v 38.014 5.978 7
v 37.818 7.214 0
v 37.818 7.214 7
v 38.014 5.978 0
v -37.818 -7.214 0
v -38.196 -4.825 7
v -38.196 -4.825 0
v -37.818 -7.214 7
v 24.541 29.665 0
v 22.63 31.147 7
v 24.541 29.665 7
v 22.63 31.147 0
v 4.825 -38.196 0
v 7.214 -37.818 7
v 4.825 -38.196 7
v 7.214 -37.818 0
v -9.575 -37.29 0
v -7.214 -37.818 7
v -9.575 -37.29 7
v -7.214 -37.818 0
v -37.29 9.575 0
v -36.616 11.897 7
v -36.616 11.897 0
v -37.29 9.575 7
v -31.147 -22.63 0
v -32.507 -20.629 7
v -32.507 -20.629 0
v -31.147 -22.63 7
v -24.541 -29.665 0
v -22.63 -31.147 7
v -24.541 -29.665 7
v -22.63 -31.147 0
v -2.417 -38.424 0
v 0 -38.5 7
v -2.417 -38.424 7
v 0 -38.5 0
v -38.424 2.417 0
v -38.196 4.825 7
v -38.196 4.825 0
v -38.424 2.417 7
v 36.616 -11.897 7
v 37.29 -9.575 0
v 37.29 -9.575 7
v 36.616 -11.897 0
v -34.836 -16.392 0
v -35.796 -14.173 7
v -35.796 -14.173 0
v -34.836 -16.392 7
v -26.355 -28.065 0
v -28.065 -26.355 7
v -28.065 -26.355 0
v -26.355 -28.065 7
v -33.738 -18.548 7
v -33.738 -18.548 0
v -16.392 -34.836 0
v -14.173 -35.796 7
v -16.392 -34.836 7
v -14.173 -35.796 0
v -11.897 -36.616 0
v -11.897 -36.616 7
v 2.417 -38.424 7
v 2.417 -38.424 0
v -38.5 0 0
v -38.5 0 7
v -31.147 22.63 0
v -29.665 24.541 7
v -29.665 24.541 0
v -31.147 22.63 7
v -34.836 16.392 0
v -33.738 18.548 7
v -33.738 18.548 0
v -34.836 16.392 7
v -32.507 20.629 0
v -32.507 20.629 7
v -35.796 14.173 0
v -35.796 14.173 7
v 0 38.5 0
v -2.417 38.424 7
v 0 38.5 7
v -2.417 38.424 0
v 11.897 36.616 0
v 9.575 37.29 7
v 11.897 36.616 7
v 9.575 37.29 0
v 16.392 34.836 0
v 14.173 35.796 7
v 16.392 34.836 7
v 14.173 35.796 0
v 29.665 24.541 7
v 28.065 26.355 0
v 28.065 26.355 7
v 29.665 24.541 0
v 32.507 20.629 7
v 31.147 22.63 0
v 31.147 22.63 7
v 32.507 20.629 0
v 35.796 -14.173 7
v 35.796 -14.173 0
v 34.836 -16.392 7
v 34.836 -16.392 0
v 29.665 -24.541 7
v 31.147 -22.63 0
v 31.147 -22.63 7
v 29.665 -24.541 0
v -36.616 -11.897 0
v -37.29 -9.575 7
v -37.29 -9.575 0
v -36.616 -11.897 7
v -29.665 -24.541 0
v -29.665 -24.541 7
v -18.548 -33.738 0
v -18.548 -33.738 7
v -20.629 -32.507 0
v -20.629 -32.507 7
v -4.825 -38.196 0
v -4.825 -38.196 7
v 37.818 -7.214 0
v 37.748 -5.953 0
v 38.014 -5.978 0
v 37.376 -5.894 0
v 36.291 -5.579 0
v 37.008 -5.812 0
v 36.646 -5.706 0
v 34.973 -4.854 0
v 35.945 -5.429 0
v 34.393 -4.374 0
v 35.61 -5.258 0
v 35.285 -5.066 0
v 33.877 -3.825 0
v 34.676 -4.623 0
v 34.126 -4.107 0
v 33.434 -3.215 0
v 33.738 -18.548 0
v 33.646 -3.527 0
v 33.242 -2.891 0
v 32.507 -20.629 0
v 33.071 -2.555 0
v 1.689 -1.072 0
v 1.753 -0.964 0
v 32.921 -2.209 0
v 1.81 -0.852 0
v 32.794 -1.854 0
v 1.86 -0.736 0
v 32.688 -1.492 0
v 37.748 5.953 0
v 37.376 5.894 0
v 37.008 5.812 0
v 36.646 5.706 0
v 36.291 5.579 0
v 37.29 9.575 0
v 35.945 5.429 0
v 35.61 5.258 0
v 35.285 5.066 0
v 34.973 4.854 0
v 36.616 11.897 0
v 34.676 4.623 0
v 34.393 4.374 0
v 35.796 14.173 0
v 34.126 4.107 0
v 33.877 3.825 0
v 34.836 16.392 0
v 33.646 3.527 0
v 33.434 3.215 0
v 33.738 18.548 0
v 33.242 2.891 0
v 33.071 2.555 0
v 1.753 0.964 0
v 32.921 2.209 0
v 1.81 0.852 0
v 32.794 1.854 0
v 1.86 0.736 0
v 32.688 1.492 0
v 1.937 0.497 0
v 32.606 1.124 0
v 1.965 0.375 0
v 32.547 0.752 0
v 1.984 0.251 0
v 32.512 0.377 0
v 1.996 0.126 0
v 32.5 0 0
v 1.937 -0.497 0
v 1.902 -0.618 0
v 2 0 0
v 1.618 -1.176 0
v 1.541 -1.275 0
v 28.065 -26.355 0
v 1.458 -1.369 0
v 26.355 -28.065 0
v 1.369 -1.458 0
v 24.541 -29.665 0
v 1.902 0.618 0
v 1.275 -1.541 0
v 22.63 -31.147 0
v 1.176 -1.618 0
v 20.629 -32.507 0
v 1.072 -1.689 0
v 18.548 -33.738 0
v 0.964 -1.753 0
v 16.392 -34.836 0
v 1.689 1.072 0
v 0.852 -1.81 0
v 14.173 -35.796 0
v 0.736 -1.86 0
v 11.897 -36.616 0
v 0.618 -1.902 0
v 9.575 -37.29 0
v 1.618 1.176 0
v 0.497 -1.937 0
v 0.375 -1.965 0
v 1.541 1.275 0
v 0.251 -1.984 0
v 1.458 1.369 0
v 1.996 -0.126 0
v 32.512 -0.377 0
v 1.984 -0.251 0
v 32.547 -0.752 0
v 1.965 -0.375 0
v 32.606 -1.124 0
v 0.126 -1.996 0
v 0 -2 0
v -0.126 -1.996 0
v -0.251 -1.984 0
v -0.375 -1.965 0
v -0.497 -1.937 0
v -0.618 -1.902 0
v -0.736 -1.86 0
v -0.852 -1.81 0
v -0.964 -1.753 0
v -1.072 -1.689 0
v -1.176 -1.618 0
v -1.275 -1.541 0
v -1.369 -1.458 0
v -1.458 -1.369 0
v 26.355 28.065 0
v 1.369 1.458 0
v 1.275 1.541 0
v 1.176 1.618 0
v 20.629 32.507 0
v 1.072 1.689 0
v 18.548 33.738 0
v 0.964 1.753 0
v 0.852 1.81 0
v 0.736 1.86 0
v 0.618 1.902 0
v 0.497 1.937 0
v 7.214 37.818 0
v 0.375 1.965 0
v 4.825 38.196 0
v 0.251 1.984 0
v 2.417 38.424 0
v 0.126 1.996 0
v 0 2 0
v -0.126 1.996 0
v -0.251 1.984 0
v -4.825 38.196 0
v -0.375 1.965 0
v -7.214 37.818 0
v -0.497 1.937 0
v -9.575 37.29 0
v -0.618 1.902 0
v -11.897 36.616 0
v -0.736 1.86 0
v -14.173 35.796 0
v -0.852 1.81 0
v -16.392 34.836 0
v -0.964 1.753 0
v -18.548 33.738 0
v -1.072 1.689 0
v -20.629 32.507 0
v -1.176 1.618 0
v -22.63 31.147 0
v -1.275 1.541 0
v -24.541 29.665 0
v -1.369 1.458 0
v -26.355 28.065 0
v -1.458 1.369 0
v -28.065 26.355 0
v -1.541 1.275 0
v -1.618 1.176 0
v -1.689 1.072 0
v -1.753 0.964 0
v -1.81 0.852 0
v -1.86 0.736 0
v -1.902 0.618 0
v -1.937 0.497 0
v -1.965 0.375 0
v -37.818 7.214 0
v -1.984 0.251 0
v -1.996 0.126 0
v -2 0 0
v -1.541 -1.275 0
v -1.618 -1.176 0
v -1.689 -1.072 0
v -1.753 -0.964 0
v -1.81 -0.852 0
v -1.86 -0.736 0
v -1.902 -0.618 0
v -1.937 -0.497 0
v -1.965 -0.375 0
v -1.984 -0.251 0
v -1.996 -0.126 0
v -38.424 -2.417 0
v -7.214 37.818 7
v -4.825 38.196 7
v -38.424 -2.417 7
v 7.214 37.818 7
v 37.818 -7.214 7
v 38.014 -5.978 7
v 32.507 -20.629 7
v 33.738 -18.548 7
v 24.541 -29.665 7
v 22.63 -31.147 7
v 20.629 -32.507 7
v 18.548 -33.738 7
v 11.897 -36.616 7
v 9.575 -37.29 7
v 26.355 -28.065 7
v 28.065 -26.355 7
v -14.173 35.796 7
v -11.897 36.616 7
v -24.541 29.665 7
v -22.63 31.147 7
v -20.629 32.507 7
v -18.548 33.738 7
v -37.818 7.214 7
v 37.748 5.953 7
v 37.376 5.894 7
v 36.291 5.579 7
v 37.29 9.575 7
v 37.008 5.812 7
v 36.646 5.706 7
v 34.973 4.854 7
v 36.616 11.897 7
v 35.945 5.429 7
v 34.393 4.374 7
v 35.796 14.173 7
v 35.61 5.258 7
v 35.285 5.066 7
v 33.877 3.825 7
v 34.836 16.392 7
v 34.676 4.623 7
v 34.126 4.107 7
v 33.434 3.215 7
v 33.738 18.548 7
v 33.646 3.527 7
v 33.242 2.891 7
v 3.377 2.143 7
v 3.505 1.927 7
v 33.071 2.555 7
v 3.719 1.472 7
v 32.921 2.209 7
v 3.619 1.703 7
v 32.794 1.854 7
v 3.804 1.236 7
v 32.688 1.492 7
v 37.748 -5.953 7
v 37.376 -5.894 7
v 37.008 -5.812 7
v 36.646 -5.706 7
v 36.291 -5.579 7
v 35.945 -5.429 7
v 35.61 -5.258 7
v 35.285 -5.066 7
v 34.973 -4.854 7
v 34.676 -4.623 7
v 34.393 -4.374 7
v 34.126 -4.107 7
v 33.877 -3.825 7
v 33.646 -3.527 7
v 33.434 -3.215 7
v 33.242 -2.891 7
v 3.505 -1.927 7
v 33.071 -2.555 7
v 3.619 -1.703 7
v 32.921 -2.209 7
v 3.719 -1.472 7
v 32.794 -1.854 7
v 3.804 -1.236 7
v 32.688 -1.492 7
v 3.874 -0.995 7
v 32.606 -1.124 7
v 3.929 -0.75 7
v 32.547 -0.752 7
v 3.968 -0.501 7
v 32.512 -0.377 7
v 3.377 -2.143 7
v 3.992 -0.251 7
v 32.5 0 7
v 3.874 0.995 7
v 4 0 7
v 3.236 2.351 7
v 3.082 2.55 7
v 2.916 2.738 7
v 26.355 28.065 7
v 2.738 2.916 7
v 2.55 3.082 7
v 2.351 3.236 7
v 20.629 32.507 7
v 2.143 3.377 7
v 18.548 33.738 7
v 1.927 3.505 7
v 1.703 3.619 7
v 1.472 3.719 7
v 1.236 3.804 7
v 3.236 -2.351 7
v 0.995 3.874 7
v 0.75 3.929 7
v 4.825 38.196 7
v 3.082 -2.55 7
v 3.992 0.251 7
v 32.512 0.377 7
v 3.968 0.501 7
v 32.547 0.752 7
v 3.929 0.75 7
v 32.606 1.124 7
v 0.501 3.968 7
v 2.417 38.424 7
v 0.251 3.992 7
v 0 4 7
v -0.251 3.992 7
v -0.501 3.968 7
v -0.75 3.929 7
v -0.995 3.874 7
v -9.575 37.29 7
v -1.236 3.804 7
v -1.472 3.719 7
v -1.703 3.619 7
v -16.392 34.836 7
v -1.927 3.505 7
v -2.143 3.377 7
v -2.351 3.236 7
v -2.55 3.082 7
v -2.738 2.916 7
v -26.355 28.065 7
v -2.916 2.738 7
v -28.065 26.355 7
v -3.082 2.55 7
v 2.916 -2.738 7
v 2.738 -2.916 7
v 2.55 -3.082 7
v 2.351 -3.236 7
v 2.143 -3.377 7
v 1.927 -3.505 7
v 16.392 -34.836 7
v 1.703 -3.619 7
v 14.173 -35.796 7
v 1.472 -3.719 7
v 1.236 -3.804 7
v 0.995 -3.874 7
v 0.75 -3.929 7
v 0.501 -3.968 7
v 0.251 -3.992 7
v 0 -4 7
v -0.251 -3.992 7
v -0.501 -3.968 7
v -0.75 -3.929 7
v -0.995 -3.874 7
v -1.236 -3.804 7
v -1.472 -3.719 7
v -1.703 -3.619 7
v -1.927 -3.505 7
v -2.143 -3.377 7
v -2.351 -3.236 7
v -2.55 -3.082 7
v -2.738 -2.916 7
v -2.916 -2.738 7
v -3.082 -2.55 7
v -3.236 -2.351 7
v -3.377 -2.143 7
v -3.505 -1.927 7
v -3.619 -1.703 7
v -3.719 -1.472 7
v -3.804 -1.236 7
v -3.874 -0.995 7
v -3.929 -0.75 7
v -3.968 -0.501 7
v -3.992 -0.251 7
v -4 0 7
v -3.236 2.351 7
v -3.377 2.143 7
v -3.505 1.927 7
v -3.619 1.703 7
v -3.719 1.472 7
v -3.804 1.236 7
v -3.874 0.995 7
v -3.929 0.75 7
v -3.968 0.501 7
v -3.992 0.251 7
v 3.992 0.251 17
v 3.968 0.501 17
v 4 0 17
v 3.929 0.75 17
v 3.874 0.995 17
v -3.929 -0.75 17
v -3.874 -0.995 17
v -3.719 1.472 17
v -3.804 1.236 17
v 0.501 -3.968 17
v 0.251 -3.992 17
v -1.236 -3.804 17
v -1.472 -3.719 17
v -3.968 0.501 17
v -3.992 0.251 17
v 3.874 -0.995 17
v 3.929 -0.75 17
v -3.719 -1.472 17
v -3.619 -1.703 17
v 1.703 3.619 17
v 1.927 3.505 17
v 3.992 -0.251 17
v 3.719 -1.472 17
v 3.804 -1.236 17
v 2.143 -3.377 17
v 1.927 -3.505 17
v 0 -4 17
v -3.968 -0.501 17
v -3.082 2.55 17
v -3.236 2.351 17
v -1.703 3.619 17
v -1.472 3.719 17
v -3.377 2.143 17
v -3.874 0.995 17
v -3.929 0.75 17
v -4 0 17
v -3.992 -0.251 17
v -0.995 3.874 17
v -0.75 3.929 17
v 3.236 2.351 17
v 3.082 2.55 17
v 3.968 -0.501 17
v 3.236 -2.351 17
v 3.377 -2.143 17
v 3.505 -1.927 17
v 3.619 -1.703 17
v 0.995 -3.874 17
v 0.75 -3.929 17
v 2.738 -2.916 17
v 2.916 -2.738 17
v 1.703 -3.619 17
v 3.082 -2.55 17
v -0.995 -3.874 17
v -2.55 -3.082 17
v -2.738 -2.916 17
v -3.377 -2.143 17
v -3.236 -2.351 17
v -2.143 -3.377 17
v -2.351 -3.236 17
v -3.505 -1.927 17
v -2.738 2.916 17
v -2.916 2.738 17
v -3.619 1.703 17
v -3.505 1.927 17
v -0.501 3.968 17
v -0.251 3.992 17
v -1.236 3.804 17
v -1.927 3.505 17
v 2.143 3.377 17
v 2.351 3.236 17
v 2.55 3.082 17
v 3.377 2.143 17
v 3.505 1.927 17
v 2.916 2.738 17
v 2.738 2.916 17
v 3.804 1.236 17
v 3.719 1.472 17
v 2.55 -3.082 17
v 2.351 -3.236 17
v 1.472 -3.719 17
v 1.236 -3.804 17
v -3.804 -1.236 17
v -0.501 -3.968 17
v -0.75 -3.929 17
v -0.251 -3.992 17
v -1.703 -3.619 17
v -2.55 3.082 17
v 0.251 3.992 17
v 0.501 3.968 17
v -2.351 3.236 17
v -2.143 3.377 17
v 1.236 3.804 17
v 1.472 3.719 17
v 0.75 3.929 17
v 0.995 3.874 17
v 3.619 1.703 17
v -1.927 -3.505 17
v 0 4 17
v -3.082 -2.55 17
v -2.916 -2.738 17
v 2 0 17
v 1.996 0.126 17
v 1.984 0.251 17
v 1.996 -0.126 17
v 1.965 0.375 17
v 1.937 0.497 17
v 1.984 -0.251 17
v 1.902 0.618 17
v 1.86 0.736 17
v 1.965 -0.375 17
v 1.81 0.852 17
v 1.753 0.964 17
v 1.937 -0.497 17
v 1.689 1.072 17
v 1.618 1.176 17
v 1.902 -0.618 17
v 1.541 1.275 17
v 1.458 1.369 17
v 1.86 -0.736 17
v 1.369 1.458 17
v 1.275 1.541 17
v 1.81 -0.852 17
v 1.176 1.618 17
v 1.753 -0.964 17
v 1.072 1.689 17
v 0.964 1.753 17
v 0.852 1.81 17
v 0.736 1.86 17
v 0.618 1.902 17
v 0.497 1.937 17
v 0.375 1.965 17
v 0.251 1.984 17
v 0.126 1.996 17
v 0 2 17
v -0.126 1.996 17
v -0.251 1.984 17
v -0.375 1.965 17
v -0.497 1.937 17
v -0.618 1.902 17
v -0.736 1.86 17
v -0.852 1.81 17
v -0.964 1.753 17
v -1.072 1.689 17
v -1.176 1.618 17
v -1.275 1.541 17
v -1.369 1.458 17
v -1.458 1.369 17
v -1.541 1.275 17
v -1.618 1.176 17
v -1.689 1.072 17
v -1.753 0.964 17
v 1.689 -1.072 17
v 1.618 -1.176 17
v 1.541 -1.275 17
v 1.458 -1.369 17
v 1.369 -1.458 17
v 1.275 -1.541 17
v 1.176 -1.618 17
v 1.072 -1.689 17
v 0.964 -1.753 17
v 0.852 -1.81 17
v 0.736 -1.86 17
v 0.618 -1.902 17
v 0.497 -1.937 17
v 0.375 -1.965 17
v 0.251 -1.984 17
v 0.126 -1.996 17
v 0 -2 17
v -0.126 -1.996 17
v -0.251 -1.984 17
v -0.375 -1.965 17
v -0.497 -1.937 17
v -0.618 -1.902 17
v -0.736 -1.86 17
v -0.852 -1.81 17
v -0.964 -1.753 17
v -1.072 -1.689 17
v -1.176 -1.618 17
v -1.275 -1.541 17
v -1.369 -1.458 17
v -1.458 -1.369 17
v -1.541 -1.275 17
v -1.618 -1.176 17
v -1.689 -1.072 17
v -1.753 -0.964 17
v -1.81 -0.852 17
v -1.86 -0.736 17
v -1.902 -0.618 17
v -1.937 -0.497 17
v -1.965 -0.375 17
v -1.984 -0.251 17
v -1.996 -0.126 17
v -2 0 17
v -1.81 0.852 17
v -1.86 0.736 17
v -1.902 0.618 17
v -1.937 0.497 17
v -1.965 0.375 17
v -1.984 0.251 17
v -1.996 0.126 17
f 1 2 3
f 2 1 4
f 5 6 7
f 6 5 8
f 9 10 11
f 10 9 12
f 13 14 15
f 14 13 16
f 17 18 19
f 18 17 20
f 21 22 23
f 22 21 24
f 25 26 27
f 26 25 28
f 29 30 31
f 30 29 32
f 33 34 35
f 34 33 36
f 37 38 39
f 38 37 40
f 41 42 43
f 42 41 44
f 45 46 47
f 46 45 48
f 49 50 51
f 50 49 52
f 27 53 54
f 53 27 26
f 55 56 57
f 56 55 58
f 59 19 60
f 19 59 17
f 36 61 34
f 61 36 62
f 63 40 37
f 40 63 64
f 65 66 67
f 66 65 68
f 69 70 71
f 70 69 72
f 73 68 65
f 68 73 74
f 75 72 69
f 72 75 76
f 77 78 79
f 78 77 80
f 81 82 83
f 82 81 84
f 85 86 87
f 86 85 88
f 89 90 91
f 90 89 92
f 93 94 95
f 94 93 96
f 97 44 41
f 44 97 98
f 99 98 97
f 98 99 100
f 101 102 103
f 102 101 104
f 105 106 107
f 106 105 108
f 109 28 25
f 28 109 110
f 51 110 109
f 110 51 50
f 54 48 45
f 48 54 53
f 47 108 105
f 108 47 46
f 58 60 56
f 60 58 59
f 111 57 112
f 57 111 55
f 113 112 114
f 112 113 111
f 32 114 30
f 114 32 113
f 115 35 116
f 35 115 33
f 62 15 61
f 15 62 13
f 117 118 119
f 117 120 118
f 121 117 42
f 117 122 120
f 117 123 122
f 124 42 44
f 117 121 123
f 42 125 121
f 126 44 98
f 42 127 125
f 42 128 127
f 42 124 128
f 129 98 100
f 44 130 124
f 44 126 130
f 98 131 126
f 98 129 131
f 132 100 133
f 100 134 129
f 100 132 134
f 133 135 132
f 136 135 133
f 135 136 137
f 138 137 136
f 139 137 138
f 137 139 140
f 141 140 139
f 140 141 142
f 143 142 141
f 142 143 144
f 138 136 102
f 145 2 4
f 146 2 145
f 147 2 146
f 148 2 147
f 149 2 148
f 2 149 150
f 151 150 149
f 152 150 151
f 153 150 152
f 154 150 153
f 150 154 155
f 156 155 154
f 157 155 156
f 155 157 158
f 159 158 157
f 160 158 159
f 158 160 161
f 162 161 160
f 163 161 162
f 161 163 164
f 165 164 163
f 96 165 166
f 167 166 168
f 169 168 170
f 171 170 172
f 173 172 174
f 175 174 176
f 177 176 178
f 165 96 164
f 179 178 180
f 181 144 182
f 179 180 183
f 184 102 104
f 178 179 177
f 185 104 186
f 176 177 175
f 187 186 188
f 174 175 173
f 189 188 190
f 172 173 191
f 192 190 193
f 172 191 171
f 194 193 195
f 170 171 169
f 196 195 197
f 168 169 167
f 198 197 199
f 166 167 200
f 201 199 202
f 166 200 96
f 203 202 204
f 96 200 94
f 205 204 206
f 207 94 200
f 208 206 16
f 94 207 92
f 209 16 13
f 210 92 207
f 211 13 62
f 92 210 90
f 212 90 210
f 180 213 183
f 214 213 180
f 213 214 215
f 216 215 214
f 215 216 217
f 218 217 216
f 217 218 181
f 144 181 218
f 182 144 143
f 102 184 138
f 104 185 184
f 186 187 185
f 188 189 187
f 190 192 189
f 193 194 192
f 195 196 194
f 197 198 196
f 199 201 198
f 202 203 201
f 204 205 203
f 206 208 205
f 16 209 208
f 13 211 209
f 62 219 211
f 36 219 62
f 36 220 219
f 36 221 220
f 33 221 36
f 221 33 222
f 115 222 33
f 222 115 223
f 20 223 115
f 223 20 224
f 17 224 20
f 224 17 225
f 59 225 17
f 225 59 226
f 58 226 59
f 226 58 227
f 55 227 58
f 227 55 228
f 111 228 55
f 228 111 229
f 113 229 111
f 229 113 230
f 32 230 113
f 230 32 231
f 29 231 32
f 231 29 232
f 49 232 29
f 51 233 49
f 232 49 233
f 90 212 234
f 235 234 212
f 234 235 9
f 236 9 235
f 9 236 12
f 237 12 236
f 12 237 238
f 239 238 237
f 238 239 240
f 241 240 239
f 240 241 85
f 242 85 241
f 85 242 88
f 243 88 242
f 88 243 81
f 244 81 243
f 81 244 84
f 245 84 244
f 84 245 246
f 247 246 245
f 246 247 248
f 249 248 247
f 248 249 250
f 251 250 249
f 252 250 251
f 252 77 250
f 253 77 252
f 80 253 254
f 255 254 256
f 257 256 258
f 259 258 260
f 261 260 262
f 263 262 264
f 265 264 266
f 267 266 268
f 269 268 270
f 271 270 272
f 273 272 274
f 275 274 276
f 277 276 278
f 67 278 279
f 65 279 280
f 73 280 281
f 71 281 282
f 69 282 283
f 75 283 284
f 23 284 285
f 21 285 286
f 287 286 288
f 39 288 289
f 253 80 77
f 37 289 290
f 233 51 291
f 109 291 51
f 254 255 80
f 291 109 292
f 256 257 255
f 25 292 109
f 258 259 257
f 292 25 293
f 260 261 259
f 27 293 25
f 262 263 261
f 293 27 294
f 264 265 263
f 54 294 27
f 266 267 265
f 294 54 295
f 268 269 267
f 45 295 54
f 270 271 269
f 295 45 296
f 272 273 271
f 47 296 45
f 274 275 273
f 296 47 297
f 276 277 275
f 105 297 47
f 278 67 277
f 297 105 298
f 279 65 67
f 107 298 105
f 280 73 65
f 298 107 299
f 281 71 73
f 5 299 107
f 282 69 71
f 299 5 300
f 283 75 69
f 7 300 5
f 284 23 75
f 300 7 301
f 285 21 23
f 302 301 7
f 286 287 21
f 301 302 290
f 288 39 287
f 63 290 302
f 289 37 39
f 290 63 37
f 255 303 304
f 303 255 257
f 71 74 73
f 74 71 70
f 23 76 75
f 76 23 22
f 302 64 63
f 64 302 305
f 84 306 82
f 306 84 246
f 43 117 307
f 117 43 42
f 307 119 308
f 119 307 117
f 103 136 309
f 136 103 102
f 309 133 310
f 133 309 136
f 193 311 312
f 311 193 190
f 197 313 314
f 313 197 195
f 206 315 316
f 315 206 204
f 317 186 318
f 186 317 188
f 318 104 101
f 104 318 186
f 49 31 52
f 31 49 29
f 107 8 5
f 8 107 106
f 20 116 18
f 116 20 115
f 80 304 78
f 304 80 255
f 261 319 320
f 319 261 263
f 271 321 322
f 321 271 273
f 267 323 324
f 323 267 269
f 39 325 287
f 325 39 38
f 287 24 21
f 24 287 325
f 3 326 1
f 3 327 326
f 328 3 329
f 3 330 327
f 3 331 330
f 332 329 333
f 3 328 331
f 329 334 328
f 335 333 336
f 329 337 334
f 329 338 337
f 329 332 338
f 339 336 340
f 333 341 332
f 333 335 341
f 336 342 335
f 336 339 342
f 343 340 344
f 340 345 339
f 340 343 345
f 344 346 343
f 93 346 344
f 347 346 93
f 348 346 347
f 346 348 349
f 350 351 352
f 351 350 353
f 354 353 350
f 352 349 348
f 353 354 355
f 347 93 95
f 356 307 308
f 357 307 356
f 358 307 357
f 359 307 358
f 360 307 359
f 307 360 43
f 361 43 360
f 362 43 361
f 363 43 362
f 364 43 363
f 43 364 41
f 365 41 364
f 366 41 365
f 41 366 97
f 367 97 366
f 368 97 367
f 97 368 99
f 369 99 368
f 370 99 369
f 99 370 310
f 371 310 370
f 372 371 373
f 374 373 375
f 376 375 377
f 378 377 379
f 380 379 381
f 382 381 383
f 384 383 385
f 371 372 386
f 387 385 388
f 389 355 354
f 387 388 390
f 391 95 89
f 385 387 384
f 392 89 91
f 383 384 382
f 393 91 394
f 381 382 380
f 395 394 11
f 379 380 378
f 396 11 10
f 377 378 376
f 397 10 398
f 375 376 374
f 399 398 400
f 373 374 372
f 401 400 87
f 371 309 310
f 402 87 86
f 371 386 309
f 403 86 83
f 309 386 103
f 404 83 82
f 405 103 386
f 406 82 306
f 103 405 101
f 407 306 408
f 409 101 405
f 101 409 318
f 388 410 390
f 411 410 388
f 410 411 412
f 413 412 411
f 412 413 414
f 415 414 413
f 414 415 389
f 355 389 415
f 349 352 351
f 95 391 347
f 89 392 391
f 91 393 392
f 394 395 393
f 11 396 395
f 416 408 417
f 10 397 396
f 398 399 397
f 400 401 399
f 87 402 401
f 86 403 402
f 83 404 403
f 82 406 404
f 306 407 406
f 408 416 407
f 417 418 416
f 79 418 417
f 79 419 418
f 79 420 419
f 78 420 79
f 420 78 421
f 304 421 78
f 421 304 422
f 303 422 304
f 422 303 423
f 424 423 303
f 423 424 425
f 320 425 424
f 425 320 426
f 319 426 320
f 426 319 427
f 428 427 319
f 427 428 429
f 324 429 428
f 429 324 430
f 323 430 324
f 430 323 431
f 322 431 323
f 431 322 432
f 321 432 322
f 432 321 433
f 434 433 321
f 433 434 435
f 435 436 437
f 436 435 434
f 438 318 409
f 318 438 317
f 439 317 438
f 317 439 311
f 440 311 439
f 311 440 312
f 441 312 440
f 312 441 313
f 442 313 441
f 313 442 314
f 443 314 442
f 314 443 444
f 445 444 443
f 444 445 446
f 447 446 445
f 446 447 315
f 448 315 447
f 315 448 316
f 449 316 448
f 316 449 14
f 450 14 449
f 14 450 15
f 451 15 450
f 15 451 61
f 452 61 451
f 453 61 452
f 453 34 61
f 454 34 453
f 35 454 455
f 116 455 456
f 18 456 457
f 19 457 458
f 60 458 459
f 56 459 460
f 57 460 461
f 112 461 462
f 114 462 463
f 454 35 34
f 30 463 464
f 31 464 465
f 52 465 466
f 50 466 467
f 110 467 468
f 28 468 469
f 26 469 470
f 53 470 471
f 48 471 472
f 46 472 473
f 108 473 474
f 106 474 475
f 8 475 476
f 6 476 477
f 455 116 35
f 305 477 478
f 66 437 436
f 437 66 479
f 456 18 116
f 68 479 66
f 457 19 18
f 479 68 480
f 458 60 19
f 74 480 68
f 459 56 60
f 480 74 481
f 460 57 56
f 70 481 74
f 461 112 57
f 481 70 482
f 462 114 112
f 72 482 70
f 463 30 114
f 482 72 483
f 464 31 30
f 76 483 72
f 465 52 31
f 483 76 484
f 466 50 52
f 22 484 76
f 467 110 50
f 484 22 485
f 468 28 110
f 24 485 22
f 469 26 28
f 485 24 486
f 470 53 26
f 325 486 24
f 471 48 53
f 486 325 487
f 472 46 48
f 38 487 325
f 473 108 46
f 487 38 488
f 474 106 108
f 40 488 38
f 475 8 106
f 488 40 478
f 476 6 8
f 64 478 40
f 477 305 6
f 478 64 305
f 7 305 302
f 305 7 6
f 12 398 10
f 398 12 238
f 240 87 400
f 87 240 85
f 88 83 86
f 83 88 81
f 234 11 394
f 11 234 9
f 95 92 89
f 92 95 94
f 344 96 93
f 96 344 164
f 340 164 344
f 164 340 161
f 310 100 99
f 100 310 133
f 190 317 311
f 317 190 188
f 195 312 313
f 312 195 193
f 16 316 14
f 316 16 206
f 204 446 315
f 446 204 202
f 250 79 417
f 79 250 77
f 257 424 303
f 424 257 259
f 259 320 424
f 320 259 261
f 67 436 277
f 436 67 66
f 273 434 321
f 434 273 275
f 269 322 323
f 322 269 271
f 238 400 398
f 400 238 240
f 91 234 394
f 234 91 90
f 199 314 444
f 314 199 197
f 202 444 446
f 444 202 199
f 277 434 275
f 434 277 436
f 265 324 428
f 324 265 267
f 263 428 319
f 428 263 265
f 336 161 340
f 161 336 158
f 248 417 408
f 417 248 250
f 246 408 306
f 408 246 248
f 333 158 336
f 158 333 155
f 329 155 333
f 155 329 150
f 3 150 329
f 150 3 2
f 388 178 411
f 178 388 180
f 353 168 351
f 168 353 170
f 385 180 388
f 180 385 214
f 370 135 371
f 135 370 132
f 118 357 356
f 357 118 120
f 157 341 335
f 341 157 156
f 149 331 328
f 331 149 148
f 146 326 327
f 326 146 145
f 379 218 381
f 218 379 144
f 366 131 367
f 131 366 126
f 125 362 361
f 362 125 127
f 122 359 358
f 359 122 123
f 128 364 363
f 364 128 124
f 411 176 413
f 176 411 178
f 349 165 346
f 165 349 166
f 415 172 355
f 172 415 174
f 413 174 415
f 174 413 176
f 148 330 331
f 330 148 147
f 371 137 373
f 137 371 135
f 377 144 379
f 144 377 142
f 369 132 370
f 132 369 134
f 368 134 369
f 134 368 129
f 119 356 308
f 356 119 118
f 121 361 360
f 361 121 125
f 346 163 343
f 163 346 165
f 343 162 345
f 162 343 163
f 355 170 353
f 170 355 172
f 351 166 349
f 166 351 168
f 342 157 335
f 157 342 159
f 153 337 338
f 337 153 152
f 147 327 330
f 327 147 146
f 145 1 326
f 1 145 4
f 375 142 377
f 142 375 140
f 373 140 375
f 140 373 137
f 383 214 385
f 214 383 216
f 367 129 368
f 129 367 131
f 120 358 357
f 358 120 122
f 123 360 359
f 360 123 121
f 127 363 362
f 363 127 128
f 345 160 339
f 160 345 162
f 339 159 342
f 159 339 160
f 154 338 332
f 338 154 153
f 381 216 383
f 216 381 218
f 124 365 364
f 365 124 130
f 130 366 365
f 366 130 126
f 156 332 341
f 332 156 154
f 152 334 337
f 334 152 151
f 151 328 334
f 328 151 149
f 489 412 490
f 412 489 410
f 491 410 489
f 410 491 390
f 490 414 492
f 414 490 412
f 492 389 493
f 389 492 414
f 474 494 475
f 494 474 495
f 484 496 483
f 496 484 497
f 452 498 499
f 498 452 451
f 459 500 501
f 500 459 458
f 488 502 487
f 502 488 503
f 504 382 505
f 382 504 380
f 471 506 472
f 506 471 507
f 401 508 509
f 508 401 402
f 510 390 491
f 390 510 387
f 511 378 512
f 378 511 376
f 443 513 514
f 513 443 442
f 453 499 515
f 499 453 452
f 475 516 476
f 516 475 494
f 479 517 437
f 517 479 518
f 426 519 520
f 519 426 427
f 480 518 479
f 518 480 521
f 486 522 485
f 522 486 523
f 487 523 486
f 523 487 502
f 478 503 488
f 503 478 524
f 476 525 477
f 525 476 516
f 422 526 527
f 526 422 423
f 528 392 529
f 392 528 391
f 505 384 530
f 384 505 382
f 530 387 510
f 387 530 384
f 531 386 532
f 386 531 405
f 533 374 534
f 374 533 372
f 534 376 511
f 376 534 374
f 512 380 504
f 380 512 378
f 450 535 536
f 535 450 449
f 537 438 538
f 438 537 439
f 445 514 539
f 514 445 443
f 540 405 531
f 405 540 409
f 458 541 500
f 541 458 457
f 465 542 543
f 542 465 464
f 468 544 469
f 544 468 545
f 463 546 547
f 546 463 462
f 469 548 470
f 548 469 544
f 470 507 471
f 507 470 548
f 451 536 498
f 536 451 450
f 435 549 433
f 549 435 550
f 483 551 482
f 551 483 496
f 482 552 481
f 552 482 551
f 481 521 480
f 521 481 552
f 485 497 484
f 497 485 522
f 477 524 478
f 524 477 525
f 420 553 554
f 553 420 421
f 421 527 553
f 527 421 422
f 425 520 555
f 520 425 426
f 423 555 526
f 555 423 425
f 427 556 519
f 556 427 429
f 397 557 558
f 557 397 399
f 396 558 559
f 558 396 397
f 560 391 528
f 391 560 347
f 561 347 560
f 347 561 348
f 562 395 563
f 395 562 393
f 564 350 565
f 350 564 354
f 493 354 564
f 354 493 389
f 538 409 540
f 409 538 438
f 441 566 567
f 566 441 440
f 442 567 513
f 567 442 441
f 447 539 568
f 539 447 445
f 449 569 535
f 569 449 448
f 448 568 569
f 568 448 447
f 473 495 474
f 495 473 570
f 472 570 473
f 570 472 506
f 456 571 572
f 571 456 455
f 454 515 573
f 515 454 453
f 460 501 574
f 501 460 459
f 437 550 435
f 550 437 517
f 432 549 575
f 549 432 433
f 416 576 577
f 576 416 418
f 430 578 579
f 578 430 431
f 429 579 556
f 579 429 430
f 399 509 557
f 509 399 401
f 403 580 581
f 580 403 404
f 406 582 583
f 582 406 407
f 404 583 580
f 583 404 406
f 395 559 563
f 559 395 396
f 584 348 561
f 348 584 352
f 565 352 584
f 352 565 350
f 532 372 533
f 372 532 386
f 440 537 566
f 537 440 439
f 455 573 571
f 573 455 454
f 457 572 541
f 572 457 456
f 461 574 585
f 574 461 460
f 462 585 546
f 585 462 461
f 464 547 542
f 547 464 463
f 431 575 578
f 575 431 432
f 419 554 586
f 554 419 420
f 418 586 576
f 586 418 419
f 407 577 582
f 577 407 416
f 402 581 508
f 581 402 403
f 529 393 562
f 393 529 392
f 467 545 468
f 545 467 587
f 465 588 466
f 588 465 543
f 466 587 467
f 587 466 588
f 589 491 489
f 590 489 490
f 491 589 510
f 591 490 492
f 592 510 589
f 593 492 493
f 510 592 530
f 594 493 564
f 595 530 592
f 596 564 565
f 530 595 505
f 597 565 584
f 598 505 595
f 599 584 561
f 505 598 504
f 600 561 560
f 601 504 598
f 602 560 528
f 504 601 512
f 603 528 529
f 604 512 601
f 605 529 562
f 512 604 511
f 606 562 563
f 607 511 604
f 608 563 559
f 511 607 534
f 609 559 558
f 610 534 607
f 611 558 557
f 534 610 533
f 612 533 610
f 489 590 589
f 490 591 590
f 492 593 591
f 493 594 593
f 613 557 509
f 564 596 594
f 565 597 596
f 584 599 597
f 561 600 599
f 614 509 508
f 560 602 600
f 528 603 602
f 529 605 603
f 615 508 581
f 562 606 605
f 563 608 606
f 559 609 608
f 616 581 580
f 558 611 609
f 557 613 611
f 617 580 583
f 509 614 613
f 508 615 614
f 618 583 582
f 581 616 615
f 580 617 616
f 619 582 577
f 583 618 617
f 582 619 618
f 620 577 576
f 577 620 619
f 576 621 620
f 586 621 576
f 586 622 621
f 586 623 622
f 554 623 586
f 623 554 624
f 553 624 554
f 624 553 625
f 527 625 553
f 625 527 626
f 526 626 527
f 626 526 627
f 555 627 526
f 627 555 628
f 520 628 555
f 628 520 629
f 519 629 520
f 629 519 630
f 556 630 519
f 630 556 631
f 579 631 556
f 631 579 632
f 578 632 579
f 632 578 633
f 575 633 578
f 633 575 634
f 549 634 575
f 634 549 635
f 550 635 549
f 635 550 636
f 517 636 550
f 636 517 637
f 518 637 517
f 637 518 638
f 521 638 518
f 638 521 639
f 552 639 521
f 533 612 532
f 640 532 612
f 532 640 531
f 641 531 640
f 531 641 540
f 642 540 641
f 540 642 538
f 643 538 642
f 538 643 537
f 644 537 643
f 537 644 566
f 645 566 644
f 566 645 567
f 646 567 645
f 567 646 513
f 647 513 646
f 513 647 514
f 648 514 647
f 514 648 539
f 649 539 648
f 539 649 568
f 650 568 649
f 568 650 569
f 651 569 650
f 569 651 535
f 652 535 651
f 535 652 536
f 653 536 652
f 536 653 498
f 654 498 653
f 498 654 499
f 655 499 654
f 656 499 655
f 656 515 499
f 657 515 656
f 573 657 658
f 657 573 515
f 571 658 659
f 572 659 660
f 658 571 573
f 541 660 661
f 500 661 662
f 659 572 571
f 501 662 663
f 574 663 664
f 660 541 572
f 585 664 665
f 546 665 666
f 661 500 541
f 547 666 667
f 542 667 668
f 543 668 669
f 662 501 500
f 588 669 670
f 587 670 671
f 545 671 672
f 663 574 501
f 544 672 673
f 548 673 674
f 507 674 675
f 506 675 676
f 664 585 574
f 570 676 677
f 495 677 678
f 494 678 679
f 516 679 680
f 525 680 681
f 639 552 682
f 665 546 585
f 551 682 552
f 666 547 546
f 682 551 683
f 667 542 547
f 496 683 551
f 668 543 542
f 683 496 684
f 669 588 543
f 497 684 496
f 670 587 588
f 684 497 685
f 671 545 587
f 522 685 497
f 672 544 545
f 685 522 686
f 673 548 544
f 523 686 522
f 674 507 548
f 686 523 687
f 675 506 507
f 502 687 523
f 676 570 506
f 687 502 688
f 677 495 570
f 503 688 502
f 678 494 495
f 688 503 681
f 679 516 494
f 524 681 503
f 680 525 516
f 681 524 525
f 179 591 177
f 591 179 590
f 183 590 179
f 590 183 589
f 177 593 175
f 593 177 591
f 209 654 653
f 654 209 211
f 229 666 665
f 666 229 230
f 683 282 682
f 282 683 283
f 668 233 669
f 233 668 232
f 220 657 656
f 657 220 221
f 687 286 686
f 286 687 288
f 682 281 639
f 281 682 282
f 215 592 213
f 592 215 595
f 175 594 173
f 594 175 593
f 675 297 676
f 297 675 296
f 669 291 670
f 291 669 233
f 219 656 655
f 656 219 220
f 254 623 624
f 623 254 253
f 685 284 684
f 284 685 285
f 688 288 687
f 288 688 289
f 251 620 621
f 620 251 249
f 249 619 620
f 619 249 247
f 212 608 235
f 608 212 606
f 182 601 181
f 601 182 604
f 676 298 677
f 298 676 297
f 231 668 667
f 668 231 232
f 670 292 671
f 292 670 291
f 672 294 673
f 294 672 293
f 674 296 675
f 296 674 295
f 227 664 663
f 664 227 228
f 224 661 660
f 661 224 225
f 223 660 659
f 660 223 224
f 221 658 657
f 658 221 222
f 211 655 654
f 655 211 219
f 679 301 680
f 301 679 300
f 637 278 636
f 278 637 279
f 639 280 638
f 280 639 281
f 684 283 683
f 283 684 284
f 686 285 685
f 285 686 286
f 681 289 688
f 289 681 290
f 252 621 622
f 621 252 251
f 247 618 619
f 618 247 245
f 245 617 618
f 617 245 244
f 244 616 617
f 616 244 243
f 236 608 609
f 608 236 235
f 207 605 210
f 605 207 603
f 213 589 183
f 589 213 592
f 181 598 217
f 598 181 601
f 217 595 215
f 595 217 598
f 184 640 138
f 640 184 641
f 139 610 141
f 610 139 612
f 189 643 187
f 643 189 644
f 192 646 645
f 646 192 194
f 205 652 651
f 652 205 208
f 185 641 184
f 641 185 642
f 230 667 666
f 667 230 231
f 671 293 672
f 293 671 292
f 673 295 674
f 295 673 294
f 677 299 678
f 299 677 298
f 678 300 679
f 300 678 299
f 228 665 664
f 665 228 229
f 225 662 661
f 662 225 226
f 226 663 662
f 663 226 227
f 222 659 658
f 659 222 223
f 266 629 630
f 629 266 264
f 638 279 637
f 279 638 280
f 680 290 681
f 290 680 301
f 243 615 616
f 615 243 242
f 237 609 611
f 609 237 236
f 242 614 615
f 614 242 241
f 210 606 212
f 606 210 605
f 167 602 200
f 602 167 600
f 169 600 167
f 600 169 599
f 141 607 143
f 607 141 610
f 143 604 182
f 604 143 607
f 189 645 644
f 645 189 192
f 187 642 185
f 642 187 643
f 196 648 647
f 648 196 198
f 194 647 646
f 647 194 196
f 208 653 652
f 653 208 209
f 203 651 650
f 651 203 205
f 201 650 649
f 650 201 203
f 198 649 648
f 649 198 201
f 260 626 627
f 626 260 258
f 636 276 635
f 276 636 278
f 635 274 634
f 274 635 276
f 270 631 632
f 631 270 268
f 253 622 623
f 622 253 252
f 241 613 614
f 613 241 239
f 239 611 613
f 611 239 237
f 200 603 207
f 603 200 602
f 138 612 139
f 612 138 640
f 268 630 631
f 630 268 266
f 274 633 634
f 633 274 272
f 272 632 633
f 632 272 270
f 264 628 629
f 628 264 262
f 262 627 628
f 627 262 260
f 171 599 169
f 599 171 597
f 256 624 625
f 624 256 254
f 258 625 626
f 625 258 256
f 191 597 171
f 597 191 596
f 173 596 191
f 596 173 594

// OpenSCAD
resolutionScale = 20;

//treadmill roller fitting
module connector(ir,or,lenFactor){
    linear_extrude(height = lenFactor*ir)
    circle(or,$fn = resolutionScale);

}

module tube(ir,or,length){
    difference(){
        cylinder(length,or,or);
        cylinder(length,ir,ir);
    }
}

module long_circle(r,length){
    union(){
        translate([length/2-r,0,0])
            circle(r,$fn = resolutionScale);
        translate([-length/2+r,0,0])
            circle(r,$fn = resolutionScale);
        square([length-2*r,r*2],center=true);
    }
}

module flat_flare(ir,or,length,width,depth,resolution){
    ors = [for (i = [0:resolution]) or-(or-depth)/resolution*i];
    widths = [for (i = [0:resolution]) 2*or-(or-width)/resolution*i];
    wall_thickness = or-ir;
    union(){
    for(i=[0:resolution]){
        translate([0,0,length/resolution*i])
        linear_extrude(length/resolution) 
        difference(){
        long_circle(r = ors[i], length = widths[i]);
        long_circle(r = ors[i]-wall_thickness, length = widths[i]-wall_thickness);
        }
    }
    }
}

module terrarium_flare(ir,or,length,width,tubeLength){
    union(){
    //tube
    tube(ir = ir, or = or, length = tubeLength+1);
    //flare
    resolution = ceil(length);
    depth = (pow(or,2)*3.14/width);
    translate([0,0,tubeLength-1])
    flat_flare(ir = ir, or = or, length = length, width = width, depth = depth, resolution = resolution);
    //end
    }

}

module hollow_connector(ir,or,lenFactor){
    union(){
        //full length hollowness
        //translate([0,0,-.01]) //this clears a 0 thickness web that otherwise forms if the angle of the connector is <90... but the slicer usually deletes it
        linear_extrude(height = 4*ir)
        circle(ir - (or-ir),$fn = resolutionScale);
        //shoulder cutback for improving overhang print
        translate([0,0,ir+(or-ir)/2])
            cylinder((or-ir)/2,ir-(or-ir),ir,$fn = resolutionScale);
        //hollow for pipe
        translate([0,0,or]){
            linear_extrude(height =4*ir)
           circle(ir,$fn = resolutionScale);
            }
        //trim top edge
        translate([0,0,lenFactor*ir])
            linear_extrude(height=ir)
            circle(or,$fn = resolutionScale);
        }
}
module sphere_middle(ir,or){
    difference(){
    sphere(or,$fn = resolutionScale);
    sphere(ir-(or-ir),$fn = resolutionScale);
    }
}
    

module old(){
difference(){
union(){
linear_extrude(height = .1*25.4)
circle(1.18*25.4/2,$fn = resolutionScale);
linear_extrude(height = .75*25.4)
difference(){
circle(1.035*25.4/2,$fn = resolutionScale);
circle(.33*25.4/2,$fn = resolutionScale);
}
}
linear_extrude(height = 25.4*.23)
translate([0,0,0])
circle((.5*25.4/2)/cos(180/6), $fn = resolutionScale);
}
}
module 2_fitting(ir,or,angle,lenFactor){
difference(){
    union(){
        connector(ir,or,lenFactor);
        sphere_middle(ir,or);
        rotate([angle,0,0]) connector(ir,or,lenFactor);
    }
    union(){
        hollow_connector(ir,or,lenFactor);
        rotate([angle,0,0]) hollow_connector(ir,or,lenFactor);
    }
}
}

module 3_fitting_inline(ir,or,angle,angle2,lenFactor){
difference(){
    union(){
        connector(ir,or,lenFactor);
        sphere_middle(ir,or);
        rotate([angle,0,0]) connector(ir,or,lenFactor);
        rotate([angle2,0,0]) connector(ir,or,lenFactor);
    }
    union(){
        hollow_connector(ir,or,lenFactor);
        rotate([angle,0,0]) hollow_connector(ir,or,lenFactor);
        rotate([angle2,0,0]) hollow_connector(ir,or,lenFactor);
    }
}
}

module plug(rad,thickness,resolution){
    linear_extrude(height = thickness){
        circle(r = rad,$fn=resolution);
    } 
}

module nipple(OR,length,thickness,resolution){
    difference(){
        linear_extrude(height = length){
            circle(r=OR,$fn=resolution);
        }
        linear_extrude(height = length){
            circle(r = OR-thickness,$fn=resolution);
        } 
    }
}

module aquarium_pump_plug(rad,thickness,nippleOR, nippleLen,resolution){
    union(){
        difference(){
            plug(rad,thickness,resolution);
            translate(v = [rad,0,0]) linear_extrude(height = thickness) circle(r = 6,$fn=resolution);//cutout for cables, fill with silicone
            linear_extrude(height = thickness) circle(r=nippleOR,$fn=resolution); 
        }
        nipple(OR=nippleOR,length=nippleLen+thickness,thickness=2,resolution=resolution);
    }

}
aquarium_pump_plug(rad=77/2,thickness = 7,nippleOR=8/2, nippleLen=10, resolution=100);

//terrarium_flare(ir = ir2, or = or2, length = 2.5*25.1, width = 6*25.1, tubeLength = 2.5*25.1);

//2_fitting(ir,or,75,lenFactor);
//translate([3*or,0,0])
//tube(ir = ir2, or = or2, length = 21.5*5);

//translate([3*or,0,0])
//    3_fitting_inline(ir,or,40,180,2.5);
//translate([6*or,0,0])
//    2_fitting(ir,or,90,2.5);
//hollow_connector(ir,or);
